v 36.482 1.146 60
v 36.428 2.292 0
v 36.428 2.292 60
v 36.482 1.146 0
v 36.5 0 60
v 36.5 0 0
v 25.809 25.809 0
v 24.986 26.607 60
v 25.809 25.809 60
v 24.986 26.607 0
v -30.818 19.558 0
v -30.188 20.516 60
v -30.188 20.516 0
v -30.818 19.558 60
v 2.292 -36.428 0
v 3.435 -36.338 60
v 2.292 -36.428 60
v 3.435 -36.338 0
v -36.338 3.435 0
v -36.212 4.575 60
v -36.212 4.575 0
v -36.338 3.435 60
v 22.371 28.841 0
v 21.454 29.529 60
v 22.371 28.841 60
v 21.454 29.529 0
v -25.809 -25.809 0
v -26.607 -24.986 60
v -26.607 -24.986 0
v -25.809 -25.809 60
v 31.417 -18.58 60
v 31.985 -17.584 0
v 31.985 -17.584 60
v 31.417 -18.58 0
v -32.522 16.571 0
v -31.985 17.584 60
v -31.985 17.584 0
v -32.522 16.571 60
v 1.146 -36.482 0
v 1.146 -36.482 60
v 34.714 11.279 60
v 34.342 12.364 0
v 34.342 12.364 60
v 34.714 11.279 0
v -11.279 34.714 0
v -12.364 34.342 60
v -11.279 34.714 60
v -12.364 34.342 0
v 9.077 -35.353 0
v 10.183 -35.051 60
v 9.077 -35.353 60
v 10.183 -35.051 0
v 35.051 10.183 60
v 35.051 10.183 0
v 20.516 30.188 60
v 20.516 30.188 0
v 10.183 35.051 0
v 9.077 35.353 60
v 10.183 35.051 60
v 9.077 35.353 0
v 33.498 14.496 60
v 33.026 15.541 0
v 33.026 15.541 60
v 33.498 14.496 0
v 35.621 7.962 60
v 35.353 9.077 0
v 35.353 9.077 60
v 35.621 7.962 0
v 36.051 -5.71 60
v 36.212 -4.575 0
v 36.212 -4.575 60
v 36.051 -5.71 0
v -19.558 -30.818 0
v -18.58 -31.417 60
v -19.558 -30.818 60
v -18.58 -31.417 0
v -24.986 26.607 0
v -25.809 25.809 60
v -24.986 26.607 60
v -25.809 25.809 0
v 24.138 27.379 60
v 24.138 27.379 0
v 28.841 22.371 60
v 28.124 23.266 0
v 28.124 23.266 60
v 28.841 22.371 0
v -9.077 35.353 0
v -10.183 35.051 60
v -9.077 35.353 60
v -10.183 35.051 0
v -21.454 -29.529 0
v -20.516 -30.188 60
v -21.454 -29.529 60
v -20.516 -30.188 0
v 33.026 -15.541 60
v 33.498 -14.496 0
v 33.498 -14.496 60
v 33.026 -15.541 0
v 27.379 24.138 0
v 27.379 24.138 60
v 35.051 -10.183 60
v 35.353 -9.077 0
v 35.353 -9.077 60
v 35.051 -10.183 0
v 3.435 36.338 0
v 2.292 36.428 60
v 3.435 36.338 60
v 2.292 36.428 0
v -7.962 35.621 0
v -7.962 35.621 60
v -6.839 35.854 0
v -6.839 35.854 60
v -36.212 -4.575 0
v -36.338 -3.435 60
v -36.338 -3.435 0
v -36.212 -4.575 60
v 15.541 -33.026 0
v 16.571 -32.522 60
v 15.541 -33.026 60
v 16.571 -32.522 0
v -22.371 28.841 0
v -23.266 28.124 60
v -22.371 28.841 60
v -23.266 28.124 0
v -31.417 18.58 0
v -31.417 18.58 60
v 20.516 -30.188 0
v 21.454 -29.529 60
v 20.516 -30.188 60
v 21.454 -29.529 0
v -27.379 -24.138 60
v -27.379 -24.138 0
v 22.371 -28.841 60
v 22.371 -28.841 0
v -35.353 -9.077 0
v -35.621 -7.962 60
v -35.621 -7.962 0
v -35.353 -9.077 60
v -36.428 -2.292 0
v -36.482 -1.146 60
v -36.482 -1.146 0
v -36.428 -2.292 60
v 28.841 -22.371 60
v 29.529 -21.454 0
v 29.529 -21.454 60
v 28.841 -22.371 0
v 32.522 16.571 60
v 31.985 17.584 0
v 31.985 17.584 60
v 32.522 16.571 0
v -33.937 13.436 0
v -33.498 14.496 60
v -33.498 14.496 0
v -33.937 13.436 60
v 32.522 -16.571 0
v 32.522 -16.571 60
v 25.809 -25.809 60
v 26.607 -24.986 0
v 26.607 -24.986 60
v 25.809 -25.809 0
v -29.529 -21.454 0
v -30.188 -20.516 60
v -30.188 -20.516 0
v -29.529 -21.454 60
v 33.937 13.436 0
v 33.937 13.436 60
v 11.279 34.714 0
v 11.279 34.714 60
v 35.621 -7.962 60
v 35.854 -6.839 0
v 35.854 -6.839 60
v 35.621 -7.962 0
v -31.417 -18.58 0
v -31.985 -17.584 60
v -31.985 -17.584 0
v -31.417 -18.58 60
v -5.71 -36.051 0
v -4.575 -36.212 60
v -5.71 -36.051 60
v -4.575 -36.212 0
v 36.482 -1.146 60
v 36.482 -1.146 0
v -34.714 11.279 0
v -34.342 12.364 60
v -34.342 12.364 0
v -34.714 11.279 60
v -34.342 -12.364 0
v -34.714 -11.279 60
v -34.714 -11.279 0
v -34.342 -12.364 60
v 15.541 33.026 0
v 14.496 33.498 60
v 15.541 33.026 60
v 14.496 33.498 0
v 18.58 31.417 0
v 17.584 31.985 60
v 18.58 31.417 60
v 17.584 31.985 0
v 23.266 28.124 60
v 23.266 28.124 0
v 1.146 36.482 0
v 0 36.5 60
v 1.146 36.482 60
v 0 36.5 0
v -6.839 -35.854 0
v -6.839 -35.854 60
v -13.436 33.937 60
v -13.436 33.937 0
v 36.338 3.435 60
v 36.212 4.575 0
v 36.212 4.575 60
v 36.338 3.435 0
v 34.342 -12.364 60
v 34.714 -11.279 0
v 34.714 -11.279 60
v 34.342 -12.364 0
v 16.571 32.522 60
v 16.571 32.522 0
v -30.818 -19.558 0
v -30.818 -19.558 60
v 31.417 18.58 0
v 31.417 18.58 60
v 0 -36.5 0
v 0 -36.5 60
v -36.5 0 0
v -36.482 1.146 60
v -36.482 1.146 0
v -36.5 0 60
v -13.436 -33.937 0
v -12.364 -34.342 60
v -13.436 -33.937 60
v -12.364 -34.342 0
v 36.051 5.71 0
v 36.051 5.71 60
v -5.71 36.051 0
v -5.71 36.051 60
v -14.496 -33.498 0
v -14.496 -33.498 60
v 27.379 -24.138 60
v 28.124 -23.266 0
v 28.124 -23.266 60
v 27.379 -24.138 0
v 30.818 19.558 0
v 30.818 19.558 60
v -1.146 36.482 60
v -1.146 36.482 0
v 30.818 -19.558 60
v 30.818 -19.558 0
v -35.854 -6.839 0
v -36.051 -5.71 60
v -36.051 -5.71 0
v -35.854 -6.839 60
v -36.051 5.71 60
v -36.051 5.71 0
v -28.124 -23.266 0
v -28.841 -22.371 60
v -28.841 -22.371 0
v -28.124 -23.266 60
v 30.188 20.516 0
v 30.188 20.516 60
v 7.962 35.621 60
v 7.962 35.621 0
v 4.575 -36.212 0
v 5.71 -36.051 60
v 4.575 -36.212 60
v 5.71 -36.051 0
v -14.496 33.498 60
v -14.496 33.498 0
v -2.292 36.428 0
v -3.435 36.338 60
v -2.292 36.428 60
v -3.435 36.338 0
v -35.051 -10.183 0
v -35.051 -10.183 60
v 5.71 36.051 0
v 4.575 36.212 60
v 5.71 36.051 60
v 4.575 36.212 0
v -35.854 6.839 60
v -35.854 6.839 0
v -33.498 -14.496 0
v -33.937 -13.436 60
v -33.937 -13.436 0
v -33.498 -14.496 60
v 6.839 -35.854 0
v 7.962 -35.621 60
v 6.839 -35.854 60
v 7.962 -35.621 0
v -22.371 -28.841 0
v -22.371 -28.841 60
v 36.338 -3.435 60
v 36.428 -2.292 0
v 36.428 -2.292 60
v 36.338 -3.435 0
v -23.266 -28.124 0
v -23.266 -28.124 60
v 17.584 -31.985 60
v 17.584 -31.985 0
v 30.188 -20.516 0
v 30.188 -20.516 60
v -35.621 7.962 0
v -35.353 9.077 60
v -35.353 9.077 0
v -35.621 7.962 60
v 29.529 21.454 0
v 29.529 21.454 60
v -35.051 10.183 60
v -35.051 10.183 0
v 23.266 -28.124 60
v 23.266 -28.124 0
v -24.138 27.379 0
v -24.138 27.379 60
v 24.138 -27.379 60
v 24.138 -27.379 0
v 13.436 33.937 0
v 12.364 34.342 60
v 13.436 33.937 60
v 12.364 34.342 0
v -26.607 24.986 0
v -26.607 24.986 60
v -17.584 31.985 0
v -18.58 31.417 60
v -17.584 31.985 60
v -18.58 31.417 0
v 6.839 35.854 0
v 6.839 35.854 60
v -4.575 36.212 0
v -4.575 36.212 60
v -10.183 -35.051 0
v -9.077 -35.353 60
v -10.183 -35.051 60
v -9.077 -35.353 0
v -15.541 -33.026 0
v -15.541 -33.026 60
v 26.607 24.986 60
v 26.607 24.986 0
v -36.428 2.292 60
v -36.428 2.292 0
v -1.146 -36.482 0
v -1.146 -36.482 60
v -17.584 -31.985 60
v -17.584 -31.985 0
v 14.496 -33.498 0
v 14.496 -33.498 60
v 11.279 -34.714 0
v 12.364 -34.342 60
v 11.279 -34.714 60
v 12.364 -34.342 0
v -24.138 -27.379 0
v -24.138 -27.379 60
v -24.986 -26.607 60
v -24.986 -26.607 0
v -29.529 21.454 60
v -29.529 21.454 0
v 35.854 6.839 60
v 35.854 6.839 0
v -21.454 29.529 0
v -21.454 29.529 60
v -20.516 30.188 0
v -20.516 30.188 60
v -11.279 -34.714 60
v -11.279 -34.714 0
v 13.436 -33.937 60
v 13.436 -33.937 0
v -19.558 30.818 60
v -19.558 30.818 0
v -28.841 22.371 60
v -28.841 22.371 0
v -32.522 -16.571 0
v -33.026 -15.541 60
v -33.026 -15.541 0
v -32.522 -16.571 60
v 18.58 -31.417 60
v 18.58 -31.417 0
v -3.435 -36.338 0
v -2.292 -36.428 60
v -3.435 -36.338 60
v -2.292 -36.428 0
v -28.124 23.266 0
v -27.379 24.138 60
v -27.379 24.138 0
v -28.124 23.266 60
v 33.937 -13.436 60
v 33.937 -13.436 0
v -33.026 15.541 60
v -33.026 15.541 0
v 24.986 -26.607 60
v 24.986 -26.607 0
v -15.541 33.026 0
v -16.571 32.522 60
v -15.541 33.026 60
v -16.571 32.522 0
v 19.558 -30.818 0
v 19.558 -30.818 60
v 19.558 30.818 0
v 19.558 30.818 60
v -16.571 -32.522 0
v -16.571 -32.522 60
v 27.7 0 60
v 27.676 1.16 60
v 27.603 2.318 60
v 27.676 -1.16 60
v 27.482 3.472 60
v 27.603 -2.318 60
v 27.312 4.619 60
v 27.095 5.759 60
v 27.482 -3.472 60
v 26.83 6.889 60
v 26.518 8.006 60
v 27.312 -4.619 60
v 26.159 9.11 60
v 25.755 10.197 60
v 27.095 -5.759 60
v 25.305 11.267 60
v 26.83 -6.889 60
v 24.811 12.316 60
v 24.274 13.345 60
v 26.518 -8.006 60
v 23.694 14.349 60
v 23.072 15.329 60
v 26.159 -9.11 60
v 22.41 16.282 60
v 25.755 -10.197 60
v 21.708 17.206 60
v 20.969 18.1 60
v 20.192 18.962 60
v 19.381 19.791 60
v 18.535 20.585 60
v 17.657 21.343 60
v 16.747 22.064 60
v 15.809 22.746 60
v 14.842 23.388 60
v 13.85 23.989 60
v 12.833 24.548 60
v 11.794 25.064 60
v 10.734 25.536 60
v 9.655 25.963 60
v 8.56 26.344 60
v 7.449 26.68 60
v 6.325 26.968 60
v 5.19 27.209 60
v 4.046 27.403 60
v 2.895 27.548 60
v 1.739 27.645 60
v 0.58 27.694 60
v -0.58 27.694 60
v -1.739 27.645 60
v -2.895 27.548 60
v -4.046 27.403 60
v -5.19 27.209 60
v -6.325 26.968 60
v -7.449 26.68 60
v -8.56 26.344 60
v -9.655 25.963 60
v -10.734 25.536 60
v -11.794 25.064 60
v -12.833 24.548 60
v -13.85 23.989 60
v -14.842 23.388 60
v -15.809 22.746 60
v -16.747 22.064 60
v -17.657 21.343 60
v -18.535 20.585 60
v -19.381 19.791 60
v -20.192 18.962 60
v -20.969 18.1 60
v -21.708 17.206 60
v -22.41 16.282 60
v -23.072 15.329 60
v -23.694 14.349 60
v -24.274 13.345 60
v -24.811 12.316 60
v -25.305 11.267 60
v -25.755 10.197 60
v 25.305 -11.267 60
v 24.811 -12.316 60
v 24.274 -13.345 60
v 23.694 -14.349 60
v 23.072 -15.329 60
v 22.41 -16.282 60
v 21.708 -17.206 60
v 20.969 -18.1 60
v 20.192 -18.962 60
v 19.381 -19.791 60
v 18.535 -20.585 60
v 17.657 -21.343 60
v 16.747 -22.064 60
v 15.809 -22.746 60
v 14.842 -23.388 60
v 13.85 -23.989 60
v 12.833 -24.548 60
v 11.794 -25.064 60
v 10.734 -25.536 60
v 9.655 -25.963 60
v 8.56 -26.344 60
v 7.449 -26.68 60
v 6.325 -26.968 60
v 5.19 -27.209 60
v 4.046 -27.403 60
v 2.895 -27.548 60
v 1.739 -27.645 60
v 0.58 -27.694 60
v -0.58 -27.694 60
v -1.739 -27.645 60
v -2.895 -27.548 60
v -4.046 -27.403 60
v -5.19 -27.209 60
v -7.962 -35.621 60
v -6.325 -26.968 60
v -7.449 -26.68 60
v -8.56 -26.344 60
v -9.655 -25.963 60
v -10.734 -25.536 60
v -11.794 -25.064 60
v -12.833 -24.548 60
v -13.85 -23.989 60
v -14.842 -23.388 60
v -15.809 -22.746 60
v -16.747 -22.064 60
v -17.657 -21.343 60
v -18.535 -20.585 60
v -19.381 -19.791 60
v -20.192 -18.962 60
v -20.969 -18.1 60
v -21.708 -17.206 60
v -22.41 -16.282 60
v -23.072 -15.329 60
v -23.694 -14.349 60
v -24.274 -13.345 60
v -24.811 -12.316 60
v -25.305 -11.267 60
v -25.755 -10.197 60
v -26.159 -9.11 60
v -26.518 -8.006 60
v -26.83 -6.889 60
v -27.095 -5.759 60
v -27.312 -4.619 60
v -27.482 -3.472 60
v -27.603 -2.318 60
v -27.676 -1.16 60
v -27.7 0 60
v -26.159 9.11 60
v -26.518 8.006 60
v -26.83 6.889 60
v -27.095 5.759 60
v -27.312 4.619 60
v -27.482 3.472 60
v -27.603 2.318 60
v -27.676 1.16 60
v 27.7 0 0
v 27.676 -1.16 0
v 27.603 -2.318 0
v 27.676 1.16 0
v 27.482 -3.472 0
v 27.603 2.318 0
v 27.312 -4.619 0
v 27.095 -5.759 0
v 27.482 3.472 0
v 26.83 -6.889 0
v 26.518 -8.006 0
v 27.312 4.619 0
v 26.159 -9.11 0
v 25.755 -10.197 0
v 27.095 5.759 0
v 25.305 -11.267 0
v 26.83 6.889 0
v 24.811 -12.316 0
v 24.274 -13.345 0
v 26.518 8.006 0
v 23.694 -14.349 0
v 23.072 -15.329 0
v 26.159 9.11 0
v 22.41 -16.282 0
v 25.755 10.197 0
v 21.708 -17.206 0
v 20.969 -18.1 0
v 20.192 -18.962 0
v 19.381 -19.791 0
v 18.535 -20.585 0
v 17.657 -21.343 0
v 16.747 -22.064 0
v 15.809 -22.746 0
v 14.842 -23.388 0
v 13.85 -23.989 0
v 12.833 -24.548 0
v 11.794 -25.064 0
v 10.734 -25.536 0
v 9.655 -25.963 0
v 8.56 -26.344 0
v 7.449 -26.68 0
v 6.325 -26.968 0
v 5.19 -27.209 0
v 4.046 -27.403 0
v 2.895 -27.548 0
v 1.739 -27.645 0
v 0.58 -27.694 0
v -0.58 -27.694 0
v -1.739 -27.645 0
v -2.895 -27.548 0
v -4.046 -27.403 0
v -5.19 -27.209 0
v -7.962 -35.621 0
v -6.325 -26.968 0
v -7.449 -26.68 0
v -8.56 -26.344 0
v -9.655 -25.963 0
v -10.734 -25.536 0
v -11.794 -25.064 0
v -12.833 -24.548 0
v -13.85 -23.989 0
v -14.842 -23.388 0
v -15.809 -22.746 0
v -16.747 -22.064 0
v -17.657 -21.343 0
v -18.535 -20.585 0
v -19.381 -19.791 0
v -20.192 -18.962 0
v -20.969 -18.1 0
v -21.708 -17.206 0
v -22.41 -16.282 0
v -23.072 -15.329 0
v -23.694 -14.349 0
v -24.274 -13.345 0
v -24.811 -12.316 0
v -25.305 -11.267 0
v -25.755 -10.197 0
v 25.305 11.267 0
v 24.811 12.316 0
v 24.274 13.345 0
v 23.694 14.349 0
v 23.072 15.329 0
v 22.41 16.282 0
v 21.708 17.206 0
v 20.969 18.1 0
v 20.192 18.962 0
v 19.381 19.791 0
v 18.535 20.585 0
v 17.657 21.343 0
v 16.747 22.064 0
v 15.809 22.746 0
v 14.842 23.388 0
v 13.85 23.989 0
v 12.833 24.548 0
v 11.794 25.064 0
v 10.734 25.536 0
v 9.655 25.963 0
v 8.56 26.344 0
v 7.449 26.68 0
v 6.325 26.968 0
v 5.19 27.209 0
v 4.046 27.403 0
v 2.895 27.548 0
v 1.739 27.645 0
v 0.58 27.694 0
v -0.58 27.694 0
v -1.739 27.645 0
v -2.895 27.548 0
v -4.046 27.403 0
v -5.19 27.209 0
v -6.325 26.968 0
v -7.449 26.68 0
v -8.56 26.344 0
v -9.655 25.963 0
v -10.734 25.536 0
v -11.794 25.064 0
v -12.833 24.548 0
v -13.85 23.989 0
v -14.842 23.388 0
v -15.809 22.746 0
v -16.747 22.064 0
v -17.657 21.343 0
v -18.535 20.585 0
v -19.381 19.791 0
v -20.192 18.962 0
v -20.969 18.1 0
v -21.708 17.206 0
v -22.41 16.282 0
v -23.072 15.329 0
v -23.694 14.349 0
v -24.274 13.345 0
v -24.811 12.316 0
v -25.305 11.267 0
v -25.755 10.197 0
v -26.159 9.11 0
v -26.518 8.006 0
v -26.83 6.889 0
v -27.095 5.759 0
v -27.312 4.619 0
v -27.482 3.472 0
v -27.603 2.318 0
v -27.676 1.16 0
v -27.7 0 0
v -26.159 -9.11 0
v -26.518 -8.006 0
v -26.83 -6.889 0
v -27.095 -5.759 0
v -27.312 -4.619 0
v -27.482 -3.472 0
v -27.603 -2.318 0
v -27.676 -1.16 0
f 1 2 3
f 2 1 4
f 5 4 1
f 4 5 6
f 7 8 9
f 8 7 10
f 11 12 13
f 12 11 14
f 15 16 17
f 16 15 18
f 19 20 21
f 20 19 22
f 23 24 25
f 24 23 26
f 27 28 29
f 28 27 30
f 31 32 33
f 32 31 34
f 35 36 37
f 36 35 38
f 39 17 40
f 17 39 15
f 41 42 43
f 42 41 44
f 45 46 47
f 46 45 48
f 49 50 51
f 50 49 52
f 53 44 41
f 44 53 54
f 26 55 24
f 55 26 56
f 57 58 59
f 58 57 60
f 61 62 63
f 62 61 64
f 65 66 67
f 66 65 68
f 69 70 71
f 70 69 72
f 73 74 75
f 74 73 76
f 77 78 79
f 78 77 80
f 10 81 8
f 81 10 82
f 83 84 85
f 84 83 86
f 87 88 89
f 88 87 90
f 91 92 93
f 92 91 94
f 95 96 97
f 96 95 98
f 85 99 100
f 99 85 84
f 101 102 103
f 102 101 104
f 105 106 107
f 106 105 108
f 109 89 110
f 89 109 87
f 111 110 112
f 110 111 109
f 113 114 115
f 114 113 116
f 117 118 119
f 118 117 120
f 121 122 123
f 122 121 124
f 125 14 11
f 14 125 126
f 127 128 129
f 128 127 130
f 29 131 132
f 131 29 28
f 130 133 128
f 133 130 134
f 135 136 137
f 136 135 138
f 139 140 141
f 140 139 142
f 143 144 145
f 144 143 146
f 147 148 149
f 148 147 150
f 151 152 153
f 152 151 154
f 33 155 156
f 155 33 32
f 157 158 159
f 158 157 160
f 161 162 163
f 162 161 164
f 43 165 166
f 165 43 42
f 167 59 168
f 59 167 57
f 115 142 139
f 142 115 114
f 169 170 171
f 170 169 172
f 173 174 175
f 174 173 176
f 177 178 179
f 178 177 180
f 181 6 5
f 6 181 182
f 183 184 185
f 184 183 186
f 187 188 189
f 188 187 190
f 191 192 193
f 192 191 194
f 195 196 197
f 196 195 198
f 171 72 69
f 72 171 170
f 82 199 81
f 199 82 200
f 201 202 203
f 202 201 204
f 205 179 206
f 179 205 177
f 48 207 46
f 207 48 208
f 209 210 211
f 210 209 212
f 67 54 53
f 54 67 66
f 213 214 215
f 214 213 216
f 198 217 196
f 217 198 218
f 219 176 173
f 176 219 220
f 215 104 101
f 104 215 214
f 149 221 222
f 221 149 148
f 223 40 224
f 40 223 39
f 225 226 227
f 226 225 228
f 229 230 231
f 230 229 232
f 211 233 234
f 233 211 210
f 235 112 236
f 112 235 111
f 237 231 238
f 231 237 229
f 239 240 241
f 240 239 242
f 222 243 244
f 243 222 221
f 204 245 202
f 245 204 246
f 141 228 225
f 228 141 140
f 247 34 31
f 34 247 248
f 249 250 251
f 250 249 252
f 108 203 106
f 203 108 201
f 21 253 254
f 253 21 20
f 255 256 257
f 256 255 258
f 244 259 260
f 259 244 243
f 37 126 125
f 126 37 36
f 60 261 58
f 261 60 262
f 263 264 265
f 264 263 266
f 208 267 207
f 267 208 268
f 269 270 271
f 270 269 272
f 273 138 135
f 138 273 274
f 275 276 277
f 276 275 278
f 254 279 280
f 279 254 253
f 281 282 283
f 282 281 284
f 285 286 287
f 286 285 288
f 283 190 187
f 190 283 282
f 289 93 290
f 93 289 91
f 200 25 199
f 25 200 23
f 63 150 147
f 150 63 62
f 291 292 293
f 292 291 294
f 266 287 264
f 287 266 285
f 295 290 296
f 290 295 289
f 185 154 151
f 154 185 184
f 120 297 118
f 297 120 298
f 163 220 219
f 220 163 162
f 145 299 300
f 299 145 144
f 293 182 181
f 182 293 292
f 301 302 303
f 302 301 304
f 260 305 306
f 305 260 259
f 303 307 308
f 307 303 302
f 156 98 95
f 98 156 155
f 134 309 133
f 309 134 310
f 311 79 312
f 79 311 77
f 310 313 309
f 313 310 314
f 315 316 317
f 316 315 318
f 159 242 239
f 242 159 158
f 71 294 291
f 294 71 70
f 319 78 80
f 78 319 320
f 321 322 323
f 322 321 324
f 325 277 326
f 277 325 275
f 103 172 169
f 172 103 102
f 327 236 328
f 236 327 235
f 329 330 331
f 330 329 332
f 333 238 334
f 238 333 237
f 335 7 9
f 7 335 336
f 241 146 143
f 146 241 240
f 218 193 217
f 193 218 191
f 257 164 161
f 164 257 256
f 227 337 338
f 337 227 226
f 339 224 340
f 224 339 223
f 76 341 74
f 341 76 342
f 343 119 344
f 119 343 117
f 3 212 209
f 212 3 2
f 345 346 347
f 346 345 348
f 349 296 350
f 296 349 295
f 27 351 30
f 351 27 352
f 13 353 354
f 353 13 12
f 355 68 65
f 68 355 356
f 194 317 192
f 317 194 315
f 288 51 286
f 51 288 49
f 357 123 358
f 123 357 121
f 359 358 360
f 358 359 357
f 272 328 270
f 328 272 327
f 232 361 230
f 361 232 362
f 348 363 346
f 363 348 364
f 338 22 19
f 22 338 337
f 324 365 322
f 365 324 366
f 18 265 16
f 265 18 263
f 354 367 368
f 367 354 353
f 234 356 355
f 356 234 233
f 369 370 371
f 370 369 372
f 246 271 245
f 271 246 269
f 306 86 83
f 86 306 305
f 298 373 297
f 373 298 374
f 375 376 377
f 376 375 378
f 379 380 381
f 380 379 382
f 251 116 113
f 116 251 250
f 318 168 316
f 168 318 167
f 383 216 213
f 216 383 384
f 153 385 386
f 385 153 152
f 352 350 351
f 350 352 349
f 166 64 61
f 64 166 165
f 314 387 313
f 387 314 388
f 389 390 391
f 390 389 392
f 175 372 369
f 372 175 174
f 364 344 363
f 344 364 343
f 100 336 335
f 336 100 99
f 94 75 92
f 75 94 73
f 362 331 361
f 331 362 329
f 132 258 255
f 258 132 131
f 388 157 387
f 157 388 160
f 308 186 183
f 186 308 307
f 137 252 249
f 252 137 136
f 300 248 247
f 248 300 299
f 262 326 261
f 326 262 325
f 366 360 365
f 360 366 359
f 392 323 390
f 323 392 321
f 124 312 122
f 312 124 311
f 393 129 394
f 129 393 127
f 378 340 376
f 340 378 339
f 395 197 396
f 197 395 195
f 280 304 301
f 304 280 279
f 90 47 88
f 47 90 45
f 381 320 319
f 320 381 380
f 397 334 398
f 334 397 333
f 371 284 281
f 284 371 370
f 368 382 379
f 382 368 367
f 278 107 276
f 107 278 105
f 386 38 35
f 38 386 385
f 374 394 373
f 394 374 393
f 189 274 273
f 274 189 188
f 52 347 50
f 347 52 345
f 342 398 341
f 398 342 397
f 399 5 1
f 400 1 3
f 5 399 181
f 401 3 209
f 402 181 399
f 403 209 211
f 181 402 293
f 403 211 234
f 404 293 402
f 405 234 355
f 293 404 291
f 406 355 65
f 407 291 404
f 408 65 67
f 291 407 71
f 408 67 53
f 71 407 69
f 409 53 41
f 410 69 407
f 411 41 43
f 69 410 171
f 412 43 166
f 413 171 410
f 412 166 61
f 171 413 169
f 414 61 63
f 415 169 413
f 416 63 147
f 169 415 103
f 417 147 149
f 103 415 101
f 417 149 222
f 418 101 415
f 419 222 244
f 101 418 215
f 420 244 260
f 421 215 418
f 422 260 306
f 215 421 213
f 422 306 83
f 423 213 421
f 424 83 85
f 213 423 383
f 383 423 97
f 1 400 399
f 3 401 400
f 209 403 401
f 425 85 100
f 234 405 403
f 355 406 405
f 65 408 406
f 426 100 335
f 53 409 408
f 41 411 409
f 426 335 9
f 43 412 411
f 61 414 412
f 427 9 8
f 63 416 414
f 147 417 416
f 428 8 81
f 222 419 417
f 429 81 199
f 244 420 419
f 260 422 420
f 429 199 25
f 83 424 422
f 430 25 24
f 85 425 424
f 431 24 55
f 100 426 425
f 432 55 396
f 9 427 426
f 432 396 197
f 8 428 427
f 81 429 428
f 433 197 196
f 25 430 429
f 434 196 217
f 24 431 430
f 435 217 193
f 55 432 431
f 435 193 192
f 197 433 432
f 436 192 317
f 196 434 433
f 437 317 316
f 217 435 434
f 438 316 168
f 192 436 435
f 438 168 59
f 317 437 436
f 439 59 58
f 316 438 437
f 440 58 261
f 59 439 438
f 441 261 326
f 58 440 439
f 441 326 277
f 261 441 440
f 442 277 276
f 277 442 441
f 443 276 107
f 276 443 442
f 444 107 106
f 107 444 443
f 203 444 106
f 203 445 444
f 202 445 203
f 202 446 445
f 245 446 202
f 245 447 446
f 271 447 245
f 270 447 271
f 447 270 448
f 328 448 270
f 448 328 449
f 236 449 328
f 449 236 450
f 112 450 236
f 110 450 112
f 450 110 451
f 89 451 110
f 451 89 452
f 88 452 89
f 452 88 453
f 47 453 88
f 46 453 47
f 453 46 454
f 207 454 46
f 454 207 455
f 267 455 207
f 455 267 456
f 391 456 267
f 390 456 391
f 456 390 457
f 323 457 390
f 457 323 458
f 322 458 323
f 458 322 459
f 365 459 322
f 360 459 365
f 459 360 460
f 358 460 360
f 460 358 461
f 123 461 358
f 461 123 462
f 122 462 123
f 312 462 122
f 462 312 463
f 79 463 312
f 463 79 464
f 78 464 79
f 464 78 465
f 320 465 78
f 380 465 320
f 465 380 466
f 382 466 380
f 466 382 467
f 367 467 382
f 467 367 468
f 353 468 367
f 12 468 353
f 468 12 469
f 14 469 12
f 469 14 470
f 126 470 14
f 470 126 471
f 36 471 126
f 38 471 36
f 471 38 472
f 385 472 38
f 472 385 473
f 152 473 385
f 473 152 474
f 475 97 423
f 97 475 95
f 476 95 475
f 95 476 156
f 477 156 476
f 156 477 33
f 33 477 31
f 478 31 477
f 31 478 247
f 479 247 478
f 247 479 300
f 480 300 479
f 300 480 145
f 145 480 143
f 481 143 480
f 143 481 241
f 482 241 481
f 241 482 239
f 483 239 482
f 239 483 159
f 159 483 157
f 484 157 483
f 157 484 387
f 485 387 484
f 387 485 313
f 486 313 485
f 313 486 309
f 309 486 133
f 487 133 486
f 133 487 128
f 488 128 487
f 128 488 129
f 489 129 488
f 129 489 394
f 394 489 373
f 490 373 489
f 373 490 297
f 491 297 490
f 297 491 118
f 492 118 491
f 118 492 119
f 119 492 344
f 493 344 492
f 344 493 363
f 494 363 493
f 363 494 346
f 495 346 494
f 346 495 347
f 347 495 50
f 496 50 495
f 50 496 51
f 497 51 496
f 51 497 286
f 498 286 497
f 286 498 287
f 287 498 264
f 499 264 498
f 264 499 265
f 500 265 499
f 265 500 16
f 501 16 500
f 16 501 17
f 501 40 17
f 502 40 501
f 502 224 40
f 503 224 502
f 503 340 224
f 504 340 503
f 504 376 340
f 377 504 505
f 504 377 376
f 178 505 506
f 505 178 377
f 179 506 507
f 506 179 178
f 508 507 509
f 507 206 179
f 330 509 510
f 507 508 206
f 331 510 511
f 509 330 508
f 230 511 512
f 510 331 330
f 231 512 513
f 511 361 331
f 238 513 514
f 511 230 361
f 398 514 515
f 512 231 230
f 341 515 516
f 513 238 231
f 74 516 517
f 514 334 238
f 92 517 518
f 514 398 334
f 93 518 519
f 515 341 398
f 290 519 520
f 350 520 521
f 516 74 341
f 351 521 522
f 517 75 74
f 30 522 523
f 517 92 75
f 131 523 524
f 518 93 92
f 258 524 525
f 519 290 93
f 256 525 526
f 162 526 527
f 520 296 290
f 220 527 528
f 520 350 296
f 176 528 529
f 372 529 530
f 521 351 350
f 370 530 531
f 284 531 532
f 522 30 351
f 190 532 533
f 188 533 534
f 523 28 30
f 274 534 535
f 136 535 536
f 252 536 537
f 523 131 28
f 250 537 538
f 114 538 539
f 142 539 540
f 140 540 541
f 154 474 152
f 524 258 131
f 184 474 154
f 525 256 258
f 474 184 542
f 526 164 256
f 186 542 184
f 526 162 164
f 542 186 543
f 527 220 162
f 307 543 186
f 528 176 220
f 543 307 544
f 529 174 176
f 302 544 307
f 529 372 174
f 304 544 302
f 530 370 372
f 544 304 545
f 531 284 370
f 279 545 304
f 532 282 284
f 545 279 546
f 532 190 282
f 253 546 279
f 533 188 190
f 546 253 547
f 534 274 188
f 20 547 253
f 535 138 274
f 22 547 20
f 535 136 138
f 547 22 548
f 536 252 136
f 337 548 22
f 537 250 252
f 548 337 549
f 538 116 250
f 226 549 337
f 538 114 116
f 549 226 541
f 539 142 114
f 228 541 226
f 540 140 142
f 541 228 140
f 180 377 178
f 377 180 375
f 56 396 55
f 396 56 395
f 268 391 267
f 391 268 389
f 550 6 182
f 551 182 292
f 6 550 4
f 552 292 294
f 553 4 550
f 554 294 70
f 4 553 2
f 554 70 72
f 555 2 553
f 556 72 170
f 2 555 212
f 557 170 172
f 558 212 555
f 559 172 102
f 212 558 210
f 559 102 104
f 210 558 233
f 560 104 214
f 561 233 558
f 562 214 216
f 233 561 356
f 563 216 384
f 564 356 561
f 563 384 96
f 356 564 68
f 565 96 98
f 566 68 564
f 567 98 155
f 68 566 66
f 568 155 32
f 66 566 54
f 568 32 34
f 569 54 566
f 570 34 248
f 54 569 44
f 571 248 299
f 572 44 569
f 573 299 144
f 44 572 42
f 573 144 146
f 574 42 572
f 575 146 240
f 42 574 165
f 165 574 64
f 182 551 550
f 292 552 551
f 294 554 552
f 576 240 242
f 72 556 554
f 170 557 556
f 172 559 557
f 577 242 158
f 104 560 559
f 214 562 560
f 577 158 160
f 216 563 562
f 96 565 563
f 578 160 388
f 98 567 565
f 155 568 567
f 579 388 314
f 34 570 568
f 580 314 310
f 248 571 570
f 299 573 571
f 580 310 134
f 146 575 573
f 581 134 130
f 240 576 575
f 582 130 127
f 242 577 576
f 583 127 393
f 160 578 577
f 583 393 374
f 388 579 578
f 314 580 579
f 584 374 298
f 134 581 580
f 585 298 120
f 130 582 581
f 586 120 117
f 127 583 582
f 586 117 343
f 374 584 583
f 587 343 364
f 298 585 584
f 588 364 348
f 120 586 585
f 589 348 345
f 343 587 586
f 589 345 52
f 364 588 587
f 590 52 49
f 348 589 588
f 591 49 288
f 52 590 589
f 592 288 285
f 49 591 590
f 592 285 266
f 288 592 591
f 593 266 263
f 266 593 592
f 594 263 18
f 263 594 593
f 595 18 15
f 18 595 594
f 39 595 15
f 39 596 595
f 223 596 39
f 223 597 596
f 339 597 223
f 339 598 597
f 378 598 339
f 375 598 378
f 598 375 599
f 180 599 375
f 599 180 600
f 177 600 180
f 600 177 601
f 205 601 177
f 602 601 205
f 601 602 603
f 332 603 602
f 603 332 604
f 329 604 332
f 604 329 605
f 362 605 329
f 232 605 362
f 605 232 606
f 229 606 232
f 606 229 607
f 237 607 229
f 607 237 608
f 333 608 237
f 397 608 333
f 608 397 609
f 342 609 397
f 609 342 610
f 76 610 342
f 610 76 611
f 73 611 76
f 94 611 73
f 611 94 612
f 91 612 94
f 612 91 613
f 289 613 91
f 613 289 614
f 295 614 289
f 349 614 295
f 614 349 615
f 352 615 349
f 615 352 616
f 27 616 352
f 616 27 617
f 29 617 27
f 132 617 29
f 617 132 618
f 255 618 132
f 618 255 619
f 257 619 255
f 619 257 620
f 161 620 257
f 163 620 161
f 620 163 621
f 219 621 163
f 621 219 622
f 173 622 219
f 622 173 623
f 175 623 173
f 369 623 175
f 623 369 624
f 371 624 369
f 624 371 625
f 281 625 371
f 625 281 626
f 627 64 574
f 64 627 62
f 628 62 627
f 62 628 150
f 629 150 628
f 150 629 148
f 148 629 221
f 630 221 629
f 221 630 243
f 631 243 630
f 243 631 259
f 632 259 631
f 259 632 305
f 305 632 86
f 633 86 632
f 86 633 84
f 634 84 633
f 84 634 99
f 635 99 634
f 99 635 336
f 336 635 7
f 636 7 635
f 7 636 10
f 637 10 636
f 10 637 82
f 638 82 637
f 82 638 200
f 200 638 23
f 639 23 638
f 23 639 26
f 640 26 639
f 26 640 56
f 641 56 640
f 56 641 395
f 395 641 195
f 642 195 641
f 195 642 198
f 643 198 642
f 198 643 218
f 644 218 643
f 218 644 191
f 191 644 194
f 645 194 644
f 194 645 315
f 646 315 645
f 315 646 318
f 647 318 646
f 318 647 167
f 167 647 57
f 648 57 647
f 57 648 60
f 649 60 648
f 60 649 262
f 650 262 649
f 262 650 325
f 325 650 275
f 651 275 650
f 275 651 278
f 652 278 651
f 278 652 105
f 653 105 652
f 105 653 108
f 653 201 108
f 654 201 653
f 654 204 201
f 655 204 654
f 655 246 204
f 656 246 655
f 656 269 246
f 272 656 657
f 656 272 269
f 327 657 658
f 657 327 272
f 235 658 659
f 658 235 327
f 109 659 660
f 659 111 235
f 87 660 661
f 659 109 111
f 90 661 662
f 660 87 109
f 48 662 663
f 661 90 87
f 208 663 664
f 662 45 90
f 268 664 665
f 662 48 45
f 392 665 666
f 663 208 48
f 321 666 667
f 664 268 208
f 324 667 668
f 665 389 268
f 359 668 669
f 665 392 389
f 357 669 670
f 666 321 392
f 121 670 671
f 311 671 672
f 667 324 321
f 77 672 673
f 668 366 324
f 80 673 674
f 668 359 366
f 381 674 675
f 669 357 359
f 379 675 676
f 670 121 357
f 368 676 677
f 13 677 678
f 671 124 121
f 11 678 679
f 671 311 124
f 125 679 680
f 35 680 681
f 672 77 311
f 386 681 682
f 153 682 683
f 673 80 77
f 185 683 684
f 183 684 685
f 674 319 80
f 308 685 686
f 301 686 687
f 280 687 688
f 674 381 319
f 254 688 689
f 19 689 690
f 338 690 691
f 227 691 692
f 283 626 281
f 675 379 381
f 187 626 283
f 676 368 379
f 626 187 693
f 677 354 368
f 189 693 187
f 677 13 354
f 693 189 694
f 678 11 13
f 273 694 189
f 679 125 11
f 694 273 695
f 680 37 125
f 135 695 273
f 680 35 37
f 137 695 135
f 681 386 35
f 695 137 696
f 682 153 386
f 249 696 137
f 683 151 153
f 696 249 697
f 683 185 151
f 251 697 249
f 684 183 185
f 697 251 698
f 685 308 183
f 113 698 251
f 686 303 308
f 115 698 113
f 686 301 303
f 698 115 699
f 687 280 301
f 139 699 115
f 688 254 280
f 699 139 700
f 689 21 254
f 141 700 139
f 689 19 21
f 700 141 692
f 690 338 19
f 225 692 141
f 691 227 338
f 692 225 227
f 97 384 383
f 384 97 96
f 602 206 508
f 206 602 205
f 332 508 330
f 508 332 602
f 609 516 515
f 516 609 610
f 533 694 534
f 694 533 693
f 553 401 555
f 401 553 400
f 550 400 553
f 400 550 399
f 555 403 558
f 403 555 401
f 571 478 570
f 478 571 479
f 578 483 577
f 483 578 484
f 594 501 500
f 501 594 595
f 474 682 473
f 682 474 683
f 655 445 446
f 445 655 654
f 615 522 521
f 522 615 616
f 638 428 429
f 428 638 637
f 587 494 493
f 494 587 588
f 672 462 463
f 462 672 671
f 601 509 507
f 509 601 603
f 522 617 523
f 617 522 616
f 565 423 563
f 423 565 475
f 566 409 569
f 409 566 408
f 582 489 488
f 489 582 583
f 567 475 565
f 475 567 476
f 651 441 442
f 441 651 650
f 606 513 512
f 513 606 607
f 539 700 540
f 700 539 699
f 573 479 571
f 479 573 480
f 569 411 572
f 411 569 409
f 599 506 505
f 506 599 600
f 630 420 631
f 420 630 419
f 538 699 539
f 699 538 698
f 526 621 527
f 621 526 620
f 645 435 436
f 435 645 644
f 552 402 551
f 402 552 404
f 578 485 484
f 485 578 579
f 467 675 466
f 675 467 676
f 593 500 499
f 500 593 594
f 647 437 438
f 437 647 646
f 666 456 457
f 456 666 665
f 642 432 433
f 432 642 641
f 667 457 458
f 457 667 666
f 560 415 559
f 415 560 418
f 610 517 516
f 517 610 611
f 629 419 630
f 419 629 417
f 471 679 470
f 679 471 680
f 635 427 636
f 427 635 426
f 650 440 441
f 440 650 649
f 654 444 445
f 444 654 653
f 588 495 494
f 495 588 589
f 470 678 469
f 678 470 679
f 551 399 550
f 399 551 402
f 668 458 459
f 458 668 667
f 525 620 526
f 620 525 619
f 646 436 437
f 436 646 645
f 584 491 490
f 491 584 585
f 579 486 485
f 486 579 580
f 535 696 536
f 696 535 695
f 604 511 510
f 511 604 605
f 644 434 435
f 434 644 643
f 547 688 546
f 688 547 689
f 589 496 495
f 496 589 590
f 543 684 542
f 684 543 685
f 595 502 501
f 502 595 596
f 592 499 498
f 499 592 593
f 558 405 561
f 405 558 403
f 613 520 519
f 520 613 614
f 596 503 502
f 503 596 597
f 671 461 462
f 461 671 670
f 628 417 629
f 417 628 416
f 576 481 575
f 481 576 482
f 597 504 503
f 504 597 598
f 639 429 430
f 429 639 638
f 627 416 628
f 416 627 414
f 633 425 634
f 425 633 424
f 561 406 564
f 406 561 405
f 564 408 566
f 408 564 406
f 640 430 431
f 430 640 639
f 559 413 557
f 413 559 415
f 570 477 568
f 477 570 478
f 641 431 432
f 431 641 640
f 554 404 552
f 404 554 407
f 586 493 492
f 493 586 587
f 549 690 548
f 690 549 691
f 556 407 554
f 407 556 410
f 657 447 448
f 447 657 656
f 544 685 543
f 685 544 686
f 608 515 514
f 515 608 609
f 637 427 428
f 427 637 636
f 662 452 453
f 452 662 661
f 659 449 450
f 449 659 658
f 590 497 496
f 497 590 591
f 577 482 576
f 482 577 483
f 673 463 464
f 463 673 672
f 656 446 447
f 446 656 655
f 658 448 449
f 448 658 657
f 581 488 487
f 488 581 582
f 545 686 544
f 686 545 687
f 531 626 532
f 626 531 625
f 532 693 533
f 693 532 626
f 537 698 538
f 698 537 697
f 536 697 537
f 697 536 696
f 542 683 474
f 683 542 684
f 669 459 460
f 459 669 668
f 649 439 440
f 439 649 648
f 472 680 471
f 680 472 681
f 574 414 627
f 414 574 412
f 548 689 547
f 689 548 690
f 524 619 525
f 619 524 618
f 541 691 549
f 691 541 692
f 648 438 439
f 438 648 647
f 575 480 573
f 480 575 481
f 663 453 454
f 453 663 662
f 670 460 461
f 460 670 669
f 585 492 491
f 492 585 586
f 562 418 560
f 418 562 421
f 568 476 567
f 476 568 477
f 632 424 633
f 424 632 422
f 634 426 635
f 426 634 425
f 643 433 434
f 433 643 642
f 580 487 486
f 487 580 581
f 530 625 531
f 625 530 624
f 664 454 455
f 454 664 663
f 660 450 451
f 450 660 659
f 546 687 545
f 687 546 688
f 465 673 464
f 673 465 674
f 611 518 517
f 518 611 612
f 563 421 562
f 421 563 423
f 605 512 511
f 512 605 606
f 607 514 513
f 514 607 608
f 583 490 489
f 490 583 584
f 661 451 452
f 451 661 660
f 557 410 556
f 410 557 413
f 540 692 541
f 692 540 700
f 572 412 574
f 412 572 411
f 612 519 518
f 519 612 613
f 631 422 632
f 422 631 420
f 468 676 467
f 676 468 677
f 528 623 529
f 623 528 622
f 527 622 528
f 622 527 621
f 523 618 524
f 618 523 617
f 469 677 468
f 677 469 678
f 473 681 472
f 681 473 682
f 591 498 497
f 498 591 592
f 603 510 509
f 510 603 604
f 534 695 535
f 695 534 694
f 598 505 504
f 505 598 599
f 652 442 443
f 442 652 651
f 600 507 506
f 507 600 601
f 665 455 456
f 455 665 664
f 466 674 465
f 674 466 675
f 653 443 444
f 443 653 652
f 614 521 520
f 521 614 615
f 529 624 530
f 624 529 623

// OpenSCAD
// file: ../utils/spool_core_sleeve.scad
/*
//--------------------------------------------------------------
//  Core‑Sleeve Spool Adapter  ✧  v1.1  (CC0‑1.0 / public domain)
//  Library module for parametric spool-core sleeves.
//  Example usage:
//      use <../utils/spool_core_sleeve.scad>;
//      spool_core_sleeve(inner_id=55, target_od=73, length=60, clearance=0.20);
//
//  Parameters:
//    inner_id   — measured bore ID (mm), e.g. 55
//    target_od  — outer diameter of sleeve (mm), e.g. 73 (≈AMS-friendly)
//    length     — axial length (mm), e.g. 60
//    clearance  — extra diameter added to bore (total), default 0.20
//    $fn_outer  — circle resolution for outer cylinder
//    $fn_inner  — circle resolution for inner bore
//
//  Notes:
//  • "clearance" is applied to the *diameter* of the bore (2× radial).
//  • Echoes computed wall thickness so test scripts can sanity-check values.
//--------------------------------------------------------------
*/

module spool_core_sleeve(
    inner_id   = 55,
    target_od  = 73,
    length     = 60,
    clearance  = 0.20,
    $fn_outer  = 200,
    $fn_inner  = 150
) {
    // Basic parameter validation
    assert(
        target_od > inner_id + 2 * clearance,
        str("invalid dims: target_od (", target_od, ") must exceed inner_id + "
            , "2*clearance (", inner_id + 2 * clearance, ")")
    );

    wall_mm = (target_od - inner_id) / 2;
    echo(str("Radial wall thickness: ", wall_mm, " mm"));

    difference() {
        // OUTER
        cylinder(d = target_od, h = length, $fn = $fn_outer);
        // BORE — extended ±1mm to avoid z-fusing
        translate([0, 0, -1])
            cylinder(
                d = inner_id + 2 * clearance, h = length + 2, $fn = $fn_inner
            );
    }
}

// Optional named presets (extend as you collect measurements)
function _spool_core_sleeve_preset(preset) =
    (preset == "sunlu55_to73_len60") ? [55, 73, 60, 0.20] : undef;

module spool_core_sleeve_preset(
    preset = "sunlu55_to73_len60", $fn_outer = 200, $fn_inner = 150
) {
    p = _spool_core_sleeve_preset(preset);
    assert(p != undef, str("unknown preset: ", preset));
    spool_core_sleeve(
        inner_id = p[0],
        target_od = p[1],
        length = p[2],
        clearance = p[3],
        $fn_outer = $fn_outer,
        $fn_inner = $fn_inner
    );
}

// End of library
// main file
/*
// This example file lets you render the sleeve from the CLI:
//
//   openscad -o out.stl \
//     -D INNER_ID=55 -D TARGET_OD=73 -D LENGTH=60 -D CLEARANCE=0.20 \
//     cad/examples/spool_core_sleeve_example.scad
//
// or to use a named preset:
//
//   openscad -o out.stl -D PRESET="sunlu55_to73_len60" \
//     cad/examples/spool_core_sleeve_example.scad
*/

use <../utils/spool_core_sleeve.scad>;

// Defaults (overridable via -D)
INNER_ID  = is_undef(INNER_ID)  ? 55   : INNER_ID;
TARGET_OD = is_undef(TARGET_OD) ? 73   : TARGET_OD;
LENGTH    = is_undef(LENGTH)    ? 60   : LENGTH;
CLEARANCE = is_undef(CLEARANCE) ? 0.20 : CLEARANCE;

// If PRESET is provided, it takes precedence
if (!is_undef(PRESET)) {
    spool_core_sleeve_preset(PRESET);
} else {
    spool_core_sleeve(
        inner_id = INNER_ID,
        target_od = TARGET_OD,
        length = LENGTH,
        clearance = CLEARANCE
    );
}
